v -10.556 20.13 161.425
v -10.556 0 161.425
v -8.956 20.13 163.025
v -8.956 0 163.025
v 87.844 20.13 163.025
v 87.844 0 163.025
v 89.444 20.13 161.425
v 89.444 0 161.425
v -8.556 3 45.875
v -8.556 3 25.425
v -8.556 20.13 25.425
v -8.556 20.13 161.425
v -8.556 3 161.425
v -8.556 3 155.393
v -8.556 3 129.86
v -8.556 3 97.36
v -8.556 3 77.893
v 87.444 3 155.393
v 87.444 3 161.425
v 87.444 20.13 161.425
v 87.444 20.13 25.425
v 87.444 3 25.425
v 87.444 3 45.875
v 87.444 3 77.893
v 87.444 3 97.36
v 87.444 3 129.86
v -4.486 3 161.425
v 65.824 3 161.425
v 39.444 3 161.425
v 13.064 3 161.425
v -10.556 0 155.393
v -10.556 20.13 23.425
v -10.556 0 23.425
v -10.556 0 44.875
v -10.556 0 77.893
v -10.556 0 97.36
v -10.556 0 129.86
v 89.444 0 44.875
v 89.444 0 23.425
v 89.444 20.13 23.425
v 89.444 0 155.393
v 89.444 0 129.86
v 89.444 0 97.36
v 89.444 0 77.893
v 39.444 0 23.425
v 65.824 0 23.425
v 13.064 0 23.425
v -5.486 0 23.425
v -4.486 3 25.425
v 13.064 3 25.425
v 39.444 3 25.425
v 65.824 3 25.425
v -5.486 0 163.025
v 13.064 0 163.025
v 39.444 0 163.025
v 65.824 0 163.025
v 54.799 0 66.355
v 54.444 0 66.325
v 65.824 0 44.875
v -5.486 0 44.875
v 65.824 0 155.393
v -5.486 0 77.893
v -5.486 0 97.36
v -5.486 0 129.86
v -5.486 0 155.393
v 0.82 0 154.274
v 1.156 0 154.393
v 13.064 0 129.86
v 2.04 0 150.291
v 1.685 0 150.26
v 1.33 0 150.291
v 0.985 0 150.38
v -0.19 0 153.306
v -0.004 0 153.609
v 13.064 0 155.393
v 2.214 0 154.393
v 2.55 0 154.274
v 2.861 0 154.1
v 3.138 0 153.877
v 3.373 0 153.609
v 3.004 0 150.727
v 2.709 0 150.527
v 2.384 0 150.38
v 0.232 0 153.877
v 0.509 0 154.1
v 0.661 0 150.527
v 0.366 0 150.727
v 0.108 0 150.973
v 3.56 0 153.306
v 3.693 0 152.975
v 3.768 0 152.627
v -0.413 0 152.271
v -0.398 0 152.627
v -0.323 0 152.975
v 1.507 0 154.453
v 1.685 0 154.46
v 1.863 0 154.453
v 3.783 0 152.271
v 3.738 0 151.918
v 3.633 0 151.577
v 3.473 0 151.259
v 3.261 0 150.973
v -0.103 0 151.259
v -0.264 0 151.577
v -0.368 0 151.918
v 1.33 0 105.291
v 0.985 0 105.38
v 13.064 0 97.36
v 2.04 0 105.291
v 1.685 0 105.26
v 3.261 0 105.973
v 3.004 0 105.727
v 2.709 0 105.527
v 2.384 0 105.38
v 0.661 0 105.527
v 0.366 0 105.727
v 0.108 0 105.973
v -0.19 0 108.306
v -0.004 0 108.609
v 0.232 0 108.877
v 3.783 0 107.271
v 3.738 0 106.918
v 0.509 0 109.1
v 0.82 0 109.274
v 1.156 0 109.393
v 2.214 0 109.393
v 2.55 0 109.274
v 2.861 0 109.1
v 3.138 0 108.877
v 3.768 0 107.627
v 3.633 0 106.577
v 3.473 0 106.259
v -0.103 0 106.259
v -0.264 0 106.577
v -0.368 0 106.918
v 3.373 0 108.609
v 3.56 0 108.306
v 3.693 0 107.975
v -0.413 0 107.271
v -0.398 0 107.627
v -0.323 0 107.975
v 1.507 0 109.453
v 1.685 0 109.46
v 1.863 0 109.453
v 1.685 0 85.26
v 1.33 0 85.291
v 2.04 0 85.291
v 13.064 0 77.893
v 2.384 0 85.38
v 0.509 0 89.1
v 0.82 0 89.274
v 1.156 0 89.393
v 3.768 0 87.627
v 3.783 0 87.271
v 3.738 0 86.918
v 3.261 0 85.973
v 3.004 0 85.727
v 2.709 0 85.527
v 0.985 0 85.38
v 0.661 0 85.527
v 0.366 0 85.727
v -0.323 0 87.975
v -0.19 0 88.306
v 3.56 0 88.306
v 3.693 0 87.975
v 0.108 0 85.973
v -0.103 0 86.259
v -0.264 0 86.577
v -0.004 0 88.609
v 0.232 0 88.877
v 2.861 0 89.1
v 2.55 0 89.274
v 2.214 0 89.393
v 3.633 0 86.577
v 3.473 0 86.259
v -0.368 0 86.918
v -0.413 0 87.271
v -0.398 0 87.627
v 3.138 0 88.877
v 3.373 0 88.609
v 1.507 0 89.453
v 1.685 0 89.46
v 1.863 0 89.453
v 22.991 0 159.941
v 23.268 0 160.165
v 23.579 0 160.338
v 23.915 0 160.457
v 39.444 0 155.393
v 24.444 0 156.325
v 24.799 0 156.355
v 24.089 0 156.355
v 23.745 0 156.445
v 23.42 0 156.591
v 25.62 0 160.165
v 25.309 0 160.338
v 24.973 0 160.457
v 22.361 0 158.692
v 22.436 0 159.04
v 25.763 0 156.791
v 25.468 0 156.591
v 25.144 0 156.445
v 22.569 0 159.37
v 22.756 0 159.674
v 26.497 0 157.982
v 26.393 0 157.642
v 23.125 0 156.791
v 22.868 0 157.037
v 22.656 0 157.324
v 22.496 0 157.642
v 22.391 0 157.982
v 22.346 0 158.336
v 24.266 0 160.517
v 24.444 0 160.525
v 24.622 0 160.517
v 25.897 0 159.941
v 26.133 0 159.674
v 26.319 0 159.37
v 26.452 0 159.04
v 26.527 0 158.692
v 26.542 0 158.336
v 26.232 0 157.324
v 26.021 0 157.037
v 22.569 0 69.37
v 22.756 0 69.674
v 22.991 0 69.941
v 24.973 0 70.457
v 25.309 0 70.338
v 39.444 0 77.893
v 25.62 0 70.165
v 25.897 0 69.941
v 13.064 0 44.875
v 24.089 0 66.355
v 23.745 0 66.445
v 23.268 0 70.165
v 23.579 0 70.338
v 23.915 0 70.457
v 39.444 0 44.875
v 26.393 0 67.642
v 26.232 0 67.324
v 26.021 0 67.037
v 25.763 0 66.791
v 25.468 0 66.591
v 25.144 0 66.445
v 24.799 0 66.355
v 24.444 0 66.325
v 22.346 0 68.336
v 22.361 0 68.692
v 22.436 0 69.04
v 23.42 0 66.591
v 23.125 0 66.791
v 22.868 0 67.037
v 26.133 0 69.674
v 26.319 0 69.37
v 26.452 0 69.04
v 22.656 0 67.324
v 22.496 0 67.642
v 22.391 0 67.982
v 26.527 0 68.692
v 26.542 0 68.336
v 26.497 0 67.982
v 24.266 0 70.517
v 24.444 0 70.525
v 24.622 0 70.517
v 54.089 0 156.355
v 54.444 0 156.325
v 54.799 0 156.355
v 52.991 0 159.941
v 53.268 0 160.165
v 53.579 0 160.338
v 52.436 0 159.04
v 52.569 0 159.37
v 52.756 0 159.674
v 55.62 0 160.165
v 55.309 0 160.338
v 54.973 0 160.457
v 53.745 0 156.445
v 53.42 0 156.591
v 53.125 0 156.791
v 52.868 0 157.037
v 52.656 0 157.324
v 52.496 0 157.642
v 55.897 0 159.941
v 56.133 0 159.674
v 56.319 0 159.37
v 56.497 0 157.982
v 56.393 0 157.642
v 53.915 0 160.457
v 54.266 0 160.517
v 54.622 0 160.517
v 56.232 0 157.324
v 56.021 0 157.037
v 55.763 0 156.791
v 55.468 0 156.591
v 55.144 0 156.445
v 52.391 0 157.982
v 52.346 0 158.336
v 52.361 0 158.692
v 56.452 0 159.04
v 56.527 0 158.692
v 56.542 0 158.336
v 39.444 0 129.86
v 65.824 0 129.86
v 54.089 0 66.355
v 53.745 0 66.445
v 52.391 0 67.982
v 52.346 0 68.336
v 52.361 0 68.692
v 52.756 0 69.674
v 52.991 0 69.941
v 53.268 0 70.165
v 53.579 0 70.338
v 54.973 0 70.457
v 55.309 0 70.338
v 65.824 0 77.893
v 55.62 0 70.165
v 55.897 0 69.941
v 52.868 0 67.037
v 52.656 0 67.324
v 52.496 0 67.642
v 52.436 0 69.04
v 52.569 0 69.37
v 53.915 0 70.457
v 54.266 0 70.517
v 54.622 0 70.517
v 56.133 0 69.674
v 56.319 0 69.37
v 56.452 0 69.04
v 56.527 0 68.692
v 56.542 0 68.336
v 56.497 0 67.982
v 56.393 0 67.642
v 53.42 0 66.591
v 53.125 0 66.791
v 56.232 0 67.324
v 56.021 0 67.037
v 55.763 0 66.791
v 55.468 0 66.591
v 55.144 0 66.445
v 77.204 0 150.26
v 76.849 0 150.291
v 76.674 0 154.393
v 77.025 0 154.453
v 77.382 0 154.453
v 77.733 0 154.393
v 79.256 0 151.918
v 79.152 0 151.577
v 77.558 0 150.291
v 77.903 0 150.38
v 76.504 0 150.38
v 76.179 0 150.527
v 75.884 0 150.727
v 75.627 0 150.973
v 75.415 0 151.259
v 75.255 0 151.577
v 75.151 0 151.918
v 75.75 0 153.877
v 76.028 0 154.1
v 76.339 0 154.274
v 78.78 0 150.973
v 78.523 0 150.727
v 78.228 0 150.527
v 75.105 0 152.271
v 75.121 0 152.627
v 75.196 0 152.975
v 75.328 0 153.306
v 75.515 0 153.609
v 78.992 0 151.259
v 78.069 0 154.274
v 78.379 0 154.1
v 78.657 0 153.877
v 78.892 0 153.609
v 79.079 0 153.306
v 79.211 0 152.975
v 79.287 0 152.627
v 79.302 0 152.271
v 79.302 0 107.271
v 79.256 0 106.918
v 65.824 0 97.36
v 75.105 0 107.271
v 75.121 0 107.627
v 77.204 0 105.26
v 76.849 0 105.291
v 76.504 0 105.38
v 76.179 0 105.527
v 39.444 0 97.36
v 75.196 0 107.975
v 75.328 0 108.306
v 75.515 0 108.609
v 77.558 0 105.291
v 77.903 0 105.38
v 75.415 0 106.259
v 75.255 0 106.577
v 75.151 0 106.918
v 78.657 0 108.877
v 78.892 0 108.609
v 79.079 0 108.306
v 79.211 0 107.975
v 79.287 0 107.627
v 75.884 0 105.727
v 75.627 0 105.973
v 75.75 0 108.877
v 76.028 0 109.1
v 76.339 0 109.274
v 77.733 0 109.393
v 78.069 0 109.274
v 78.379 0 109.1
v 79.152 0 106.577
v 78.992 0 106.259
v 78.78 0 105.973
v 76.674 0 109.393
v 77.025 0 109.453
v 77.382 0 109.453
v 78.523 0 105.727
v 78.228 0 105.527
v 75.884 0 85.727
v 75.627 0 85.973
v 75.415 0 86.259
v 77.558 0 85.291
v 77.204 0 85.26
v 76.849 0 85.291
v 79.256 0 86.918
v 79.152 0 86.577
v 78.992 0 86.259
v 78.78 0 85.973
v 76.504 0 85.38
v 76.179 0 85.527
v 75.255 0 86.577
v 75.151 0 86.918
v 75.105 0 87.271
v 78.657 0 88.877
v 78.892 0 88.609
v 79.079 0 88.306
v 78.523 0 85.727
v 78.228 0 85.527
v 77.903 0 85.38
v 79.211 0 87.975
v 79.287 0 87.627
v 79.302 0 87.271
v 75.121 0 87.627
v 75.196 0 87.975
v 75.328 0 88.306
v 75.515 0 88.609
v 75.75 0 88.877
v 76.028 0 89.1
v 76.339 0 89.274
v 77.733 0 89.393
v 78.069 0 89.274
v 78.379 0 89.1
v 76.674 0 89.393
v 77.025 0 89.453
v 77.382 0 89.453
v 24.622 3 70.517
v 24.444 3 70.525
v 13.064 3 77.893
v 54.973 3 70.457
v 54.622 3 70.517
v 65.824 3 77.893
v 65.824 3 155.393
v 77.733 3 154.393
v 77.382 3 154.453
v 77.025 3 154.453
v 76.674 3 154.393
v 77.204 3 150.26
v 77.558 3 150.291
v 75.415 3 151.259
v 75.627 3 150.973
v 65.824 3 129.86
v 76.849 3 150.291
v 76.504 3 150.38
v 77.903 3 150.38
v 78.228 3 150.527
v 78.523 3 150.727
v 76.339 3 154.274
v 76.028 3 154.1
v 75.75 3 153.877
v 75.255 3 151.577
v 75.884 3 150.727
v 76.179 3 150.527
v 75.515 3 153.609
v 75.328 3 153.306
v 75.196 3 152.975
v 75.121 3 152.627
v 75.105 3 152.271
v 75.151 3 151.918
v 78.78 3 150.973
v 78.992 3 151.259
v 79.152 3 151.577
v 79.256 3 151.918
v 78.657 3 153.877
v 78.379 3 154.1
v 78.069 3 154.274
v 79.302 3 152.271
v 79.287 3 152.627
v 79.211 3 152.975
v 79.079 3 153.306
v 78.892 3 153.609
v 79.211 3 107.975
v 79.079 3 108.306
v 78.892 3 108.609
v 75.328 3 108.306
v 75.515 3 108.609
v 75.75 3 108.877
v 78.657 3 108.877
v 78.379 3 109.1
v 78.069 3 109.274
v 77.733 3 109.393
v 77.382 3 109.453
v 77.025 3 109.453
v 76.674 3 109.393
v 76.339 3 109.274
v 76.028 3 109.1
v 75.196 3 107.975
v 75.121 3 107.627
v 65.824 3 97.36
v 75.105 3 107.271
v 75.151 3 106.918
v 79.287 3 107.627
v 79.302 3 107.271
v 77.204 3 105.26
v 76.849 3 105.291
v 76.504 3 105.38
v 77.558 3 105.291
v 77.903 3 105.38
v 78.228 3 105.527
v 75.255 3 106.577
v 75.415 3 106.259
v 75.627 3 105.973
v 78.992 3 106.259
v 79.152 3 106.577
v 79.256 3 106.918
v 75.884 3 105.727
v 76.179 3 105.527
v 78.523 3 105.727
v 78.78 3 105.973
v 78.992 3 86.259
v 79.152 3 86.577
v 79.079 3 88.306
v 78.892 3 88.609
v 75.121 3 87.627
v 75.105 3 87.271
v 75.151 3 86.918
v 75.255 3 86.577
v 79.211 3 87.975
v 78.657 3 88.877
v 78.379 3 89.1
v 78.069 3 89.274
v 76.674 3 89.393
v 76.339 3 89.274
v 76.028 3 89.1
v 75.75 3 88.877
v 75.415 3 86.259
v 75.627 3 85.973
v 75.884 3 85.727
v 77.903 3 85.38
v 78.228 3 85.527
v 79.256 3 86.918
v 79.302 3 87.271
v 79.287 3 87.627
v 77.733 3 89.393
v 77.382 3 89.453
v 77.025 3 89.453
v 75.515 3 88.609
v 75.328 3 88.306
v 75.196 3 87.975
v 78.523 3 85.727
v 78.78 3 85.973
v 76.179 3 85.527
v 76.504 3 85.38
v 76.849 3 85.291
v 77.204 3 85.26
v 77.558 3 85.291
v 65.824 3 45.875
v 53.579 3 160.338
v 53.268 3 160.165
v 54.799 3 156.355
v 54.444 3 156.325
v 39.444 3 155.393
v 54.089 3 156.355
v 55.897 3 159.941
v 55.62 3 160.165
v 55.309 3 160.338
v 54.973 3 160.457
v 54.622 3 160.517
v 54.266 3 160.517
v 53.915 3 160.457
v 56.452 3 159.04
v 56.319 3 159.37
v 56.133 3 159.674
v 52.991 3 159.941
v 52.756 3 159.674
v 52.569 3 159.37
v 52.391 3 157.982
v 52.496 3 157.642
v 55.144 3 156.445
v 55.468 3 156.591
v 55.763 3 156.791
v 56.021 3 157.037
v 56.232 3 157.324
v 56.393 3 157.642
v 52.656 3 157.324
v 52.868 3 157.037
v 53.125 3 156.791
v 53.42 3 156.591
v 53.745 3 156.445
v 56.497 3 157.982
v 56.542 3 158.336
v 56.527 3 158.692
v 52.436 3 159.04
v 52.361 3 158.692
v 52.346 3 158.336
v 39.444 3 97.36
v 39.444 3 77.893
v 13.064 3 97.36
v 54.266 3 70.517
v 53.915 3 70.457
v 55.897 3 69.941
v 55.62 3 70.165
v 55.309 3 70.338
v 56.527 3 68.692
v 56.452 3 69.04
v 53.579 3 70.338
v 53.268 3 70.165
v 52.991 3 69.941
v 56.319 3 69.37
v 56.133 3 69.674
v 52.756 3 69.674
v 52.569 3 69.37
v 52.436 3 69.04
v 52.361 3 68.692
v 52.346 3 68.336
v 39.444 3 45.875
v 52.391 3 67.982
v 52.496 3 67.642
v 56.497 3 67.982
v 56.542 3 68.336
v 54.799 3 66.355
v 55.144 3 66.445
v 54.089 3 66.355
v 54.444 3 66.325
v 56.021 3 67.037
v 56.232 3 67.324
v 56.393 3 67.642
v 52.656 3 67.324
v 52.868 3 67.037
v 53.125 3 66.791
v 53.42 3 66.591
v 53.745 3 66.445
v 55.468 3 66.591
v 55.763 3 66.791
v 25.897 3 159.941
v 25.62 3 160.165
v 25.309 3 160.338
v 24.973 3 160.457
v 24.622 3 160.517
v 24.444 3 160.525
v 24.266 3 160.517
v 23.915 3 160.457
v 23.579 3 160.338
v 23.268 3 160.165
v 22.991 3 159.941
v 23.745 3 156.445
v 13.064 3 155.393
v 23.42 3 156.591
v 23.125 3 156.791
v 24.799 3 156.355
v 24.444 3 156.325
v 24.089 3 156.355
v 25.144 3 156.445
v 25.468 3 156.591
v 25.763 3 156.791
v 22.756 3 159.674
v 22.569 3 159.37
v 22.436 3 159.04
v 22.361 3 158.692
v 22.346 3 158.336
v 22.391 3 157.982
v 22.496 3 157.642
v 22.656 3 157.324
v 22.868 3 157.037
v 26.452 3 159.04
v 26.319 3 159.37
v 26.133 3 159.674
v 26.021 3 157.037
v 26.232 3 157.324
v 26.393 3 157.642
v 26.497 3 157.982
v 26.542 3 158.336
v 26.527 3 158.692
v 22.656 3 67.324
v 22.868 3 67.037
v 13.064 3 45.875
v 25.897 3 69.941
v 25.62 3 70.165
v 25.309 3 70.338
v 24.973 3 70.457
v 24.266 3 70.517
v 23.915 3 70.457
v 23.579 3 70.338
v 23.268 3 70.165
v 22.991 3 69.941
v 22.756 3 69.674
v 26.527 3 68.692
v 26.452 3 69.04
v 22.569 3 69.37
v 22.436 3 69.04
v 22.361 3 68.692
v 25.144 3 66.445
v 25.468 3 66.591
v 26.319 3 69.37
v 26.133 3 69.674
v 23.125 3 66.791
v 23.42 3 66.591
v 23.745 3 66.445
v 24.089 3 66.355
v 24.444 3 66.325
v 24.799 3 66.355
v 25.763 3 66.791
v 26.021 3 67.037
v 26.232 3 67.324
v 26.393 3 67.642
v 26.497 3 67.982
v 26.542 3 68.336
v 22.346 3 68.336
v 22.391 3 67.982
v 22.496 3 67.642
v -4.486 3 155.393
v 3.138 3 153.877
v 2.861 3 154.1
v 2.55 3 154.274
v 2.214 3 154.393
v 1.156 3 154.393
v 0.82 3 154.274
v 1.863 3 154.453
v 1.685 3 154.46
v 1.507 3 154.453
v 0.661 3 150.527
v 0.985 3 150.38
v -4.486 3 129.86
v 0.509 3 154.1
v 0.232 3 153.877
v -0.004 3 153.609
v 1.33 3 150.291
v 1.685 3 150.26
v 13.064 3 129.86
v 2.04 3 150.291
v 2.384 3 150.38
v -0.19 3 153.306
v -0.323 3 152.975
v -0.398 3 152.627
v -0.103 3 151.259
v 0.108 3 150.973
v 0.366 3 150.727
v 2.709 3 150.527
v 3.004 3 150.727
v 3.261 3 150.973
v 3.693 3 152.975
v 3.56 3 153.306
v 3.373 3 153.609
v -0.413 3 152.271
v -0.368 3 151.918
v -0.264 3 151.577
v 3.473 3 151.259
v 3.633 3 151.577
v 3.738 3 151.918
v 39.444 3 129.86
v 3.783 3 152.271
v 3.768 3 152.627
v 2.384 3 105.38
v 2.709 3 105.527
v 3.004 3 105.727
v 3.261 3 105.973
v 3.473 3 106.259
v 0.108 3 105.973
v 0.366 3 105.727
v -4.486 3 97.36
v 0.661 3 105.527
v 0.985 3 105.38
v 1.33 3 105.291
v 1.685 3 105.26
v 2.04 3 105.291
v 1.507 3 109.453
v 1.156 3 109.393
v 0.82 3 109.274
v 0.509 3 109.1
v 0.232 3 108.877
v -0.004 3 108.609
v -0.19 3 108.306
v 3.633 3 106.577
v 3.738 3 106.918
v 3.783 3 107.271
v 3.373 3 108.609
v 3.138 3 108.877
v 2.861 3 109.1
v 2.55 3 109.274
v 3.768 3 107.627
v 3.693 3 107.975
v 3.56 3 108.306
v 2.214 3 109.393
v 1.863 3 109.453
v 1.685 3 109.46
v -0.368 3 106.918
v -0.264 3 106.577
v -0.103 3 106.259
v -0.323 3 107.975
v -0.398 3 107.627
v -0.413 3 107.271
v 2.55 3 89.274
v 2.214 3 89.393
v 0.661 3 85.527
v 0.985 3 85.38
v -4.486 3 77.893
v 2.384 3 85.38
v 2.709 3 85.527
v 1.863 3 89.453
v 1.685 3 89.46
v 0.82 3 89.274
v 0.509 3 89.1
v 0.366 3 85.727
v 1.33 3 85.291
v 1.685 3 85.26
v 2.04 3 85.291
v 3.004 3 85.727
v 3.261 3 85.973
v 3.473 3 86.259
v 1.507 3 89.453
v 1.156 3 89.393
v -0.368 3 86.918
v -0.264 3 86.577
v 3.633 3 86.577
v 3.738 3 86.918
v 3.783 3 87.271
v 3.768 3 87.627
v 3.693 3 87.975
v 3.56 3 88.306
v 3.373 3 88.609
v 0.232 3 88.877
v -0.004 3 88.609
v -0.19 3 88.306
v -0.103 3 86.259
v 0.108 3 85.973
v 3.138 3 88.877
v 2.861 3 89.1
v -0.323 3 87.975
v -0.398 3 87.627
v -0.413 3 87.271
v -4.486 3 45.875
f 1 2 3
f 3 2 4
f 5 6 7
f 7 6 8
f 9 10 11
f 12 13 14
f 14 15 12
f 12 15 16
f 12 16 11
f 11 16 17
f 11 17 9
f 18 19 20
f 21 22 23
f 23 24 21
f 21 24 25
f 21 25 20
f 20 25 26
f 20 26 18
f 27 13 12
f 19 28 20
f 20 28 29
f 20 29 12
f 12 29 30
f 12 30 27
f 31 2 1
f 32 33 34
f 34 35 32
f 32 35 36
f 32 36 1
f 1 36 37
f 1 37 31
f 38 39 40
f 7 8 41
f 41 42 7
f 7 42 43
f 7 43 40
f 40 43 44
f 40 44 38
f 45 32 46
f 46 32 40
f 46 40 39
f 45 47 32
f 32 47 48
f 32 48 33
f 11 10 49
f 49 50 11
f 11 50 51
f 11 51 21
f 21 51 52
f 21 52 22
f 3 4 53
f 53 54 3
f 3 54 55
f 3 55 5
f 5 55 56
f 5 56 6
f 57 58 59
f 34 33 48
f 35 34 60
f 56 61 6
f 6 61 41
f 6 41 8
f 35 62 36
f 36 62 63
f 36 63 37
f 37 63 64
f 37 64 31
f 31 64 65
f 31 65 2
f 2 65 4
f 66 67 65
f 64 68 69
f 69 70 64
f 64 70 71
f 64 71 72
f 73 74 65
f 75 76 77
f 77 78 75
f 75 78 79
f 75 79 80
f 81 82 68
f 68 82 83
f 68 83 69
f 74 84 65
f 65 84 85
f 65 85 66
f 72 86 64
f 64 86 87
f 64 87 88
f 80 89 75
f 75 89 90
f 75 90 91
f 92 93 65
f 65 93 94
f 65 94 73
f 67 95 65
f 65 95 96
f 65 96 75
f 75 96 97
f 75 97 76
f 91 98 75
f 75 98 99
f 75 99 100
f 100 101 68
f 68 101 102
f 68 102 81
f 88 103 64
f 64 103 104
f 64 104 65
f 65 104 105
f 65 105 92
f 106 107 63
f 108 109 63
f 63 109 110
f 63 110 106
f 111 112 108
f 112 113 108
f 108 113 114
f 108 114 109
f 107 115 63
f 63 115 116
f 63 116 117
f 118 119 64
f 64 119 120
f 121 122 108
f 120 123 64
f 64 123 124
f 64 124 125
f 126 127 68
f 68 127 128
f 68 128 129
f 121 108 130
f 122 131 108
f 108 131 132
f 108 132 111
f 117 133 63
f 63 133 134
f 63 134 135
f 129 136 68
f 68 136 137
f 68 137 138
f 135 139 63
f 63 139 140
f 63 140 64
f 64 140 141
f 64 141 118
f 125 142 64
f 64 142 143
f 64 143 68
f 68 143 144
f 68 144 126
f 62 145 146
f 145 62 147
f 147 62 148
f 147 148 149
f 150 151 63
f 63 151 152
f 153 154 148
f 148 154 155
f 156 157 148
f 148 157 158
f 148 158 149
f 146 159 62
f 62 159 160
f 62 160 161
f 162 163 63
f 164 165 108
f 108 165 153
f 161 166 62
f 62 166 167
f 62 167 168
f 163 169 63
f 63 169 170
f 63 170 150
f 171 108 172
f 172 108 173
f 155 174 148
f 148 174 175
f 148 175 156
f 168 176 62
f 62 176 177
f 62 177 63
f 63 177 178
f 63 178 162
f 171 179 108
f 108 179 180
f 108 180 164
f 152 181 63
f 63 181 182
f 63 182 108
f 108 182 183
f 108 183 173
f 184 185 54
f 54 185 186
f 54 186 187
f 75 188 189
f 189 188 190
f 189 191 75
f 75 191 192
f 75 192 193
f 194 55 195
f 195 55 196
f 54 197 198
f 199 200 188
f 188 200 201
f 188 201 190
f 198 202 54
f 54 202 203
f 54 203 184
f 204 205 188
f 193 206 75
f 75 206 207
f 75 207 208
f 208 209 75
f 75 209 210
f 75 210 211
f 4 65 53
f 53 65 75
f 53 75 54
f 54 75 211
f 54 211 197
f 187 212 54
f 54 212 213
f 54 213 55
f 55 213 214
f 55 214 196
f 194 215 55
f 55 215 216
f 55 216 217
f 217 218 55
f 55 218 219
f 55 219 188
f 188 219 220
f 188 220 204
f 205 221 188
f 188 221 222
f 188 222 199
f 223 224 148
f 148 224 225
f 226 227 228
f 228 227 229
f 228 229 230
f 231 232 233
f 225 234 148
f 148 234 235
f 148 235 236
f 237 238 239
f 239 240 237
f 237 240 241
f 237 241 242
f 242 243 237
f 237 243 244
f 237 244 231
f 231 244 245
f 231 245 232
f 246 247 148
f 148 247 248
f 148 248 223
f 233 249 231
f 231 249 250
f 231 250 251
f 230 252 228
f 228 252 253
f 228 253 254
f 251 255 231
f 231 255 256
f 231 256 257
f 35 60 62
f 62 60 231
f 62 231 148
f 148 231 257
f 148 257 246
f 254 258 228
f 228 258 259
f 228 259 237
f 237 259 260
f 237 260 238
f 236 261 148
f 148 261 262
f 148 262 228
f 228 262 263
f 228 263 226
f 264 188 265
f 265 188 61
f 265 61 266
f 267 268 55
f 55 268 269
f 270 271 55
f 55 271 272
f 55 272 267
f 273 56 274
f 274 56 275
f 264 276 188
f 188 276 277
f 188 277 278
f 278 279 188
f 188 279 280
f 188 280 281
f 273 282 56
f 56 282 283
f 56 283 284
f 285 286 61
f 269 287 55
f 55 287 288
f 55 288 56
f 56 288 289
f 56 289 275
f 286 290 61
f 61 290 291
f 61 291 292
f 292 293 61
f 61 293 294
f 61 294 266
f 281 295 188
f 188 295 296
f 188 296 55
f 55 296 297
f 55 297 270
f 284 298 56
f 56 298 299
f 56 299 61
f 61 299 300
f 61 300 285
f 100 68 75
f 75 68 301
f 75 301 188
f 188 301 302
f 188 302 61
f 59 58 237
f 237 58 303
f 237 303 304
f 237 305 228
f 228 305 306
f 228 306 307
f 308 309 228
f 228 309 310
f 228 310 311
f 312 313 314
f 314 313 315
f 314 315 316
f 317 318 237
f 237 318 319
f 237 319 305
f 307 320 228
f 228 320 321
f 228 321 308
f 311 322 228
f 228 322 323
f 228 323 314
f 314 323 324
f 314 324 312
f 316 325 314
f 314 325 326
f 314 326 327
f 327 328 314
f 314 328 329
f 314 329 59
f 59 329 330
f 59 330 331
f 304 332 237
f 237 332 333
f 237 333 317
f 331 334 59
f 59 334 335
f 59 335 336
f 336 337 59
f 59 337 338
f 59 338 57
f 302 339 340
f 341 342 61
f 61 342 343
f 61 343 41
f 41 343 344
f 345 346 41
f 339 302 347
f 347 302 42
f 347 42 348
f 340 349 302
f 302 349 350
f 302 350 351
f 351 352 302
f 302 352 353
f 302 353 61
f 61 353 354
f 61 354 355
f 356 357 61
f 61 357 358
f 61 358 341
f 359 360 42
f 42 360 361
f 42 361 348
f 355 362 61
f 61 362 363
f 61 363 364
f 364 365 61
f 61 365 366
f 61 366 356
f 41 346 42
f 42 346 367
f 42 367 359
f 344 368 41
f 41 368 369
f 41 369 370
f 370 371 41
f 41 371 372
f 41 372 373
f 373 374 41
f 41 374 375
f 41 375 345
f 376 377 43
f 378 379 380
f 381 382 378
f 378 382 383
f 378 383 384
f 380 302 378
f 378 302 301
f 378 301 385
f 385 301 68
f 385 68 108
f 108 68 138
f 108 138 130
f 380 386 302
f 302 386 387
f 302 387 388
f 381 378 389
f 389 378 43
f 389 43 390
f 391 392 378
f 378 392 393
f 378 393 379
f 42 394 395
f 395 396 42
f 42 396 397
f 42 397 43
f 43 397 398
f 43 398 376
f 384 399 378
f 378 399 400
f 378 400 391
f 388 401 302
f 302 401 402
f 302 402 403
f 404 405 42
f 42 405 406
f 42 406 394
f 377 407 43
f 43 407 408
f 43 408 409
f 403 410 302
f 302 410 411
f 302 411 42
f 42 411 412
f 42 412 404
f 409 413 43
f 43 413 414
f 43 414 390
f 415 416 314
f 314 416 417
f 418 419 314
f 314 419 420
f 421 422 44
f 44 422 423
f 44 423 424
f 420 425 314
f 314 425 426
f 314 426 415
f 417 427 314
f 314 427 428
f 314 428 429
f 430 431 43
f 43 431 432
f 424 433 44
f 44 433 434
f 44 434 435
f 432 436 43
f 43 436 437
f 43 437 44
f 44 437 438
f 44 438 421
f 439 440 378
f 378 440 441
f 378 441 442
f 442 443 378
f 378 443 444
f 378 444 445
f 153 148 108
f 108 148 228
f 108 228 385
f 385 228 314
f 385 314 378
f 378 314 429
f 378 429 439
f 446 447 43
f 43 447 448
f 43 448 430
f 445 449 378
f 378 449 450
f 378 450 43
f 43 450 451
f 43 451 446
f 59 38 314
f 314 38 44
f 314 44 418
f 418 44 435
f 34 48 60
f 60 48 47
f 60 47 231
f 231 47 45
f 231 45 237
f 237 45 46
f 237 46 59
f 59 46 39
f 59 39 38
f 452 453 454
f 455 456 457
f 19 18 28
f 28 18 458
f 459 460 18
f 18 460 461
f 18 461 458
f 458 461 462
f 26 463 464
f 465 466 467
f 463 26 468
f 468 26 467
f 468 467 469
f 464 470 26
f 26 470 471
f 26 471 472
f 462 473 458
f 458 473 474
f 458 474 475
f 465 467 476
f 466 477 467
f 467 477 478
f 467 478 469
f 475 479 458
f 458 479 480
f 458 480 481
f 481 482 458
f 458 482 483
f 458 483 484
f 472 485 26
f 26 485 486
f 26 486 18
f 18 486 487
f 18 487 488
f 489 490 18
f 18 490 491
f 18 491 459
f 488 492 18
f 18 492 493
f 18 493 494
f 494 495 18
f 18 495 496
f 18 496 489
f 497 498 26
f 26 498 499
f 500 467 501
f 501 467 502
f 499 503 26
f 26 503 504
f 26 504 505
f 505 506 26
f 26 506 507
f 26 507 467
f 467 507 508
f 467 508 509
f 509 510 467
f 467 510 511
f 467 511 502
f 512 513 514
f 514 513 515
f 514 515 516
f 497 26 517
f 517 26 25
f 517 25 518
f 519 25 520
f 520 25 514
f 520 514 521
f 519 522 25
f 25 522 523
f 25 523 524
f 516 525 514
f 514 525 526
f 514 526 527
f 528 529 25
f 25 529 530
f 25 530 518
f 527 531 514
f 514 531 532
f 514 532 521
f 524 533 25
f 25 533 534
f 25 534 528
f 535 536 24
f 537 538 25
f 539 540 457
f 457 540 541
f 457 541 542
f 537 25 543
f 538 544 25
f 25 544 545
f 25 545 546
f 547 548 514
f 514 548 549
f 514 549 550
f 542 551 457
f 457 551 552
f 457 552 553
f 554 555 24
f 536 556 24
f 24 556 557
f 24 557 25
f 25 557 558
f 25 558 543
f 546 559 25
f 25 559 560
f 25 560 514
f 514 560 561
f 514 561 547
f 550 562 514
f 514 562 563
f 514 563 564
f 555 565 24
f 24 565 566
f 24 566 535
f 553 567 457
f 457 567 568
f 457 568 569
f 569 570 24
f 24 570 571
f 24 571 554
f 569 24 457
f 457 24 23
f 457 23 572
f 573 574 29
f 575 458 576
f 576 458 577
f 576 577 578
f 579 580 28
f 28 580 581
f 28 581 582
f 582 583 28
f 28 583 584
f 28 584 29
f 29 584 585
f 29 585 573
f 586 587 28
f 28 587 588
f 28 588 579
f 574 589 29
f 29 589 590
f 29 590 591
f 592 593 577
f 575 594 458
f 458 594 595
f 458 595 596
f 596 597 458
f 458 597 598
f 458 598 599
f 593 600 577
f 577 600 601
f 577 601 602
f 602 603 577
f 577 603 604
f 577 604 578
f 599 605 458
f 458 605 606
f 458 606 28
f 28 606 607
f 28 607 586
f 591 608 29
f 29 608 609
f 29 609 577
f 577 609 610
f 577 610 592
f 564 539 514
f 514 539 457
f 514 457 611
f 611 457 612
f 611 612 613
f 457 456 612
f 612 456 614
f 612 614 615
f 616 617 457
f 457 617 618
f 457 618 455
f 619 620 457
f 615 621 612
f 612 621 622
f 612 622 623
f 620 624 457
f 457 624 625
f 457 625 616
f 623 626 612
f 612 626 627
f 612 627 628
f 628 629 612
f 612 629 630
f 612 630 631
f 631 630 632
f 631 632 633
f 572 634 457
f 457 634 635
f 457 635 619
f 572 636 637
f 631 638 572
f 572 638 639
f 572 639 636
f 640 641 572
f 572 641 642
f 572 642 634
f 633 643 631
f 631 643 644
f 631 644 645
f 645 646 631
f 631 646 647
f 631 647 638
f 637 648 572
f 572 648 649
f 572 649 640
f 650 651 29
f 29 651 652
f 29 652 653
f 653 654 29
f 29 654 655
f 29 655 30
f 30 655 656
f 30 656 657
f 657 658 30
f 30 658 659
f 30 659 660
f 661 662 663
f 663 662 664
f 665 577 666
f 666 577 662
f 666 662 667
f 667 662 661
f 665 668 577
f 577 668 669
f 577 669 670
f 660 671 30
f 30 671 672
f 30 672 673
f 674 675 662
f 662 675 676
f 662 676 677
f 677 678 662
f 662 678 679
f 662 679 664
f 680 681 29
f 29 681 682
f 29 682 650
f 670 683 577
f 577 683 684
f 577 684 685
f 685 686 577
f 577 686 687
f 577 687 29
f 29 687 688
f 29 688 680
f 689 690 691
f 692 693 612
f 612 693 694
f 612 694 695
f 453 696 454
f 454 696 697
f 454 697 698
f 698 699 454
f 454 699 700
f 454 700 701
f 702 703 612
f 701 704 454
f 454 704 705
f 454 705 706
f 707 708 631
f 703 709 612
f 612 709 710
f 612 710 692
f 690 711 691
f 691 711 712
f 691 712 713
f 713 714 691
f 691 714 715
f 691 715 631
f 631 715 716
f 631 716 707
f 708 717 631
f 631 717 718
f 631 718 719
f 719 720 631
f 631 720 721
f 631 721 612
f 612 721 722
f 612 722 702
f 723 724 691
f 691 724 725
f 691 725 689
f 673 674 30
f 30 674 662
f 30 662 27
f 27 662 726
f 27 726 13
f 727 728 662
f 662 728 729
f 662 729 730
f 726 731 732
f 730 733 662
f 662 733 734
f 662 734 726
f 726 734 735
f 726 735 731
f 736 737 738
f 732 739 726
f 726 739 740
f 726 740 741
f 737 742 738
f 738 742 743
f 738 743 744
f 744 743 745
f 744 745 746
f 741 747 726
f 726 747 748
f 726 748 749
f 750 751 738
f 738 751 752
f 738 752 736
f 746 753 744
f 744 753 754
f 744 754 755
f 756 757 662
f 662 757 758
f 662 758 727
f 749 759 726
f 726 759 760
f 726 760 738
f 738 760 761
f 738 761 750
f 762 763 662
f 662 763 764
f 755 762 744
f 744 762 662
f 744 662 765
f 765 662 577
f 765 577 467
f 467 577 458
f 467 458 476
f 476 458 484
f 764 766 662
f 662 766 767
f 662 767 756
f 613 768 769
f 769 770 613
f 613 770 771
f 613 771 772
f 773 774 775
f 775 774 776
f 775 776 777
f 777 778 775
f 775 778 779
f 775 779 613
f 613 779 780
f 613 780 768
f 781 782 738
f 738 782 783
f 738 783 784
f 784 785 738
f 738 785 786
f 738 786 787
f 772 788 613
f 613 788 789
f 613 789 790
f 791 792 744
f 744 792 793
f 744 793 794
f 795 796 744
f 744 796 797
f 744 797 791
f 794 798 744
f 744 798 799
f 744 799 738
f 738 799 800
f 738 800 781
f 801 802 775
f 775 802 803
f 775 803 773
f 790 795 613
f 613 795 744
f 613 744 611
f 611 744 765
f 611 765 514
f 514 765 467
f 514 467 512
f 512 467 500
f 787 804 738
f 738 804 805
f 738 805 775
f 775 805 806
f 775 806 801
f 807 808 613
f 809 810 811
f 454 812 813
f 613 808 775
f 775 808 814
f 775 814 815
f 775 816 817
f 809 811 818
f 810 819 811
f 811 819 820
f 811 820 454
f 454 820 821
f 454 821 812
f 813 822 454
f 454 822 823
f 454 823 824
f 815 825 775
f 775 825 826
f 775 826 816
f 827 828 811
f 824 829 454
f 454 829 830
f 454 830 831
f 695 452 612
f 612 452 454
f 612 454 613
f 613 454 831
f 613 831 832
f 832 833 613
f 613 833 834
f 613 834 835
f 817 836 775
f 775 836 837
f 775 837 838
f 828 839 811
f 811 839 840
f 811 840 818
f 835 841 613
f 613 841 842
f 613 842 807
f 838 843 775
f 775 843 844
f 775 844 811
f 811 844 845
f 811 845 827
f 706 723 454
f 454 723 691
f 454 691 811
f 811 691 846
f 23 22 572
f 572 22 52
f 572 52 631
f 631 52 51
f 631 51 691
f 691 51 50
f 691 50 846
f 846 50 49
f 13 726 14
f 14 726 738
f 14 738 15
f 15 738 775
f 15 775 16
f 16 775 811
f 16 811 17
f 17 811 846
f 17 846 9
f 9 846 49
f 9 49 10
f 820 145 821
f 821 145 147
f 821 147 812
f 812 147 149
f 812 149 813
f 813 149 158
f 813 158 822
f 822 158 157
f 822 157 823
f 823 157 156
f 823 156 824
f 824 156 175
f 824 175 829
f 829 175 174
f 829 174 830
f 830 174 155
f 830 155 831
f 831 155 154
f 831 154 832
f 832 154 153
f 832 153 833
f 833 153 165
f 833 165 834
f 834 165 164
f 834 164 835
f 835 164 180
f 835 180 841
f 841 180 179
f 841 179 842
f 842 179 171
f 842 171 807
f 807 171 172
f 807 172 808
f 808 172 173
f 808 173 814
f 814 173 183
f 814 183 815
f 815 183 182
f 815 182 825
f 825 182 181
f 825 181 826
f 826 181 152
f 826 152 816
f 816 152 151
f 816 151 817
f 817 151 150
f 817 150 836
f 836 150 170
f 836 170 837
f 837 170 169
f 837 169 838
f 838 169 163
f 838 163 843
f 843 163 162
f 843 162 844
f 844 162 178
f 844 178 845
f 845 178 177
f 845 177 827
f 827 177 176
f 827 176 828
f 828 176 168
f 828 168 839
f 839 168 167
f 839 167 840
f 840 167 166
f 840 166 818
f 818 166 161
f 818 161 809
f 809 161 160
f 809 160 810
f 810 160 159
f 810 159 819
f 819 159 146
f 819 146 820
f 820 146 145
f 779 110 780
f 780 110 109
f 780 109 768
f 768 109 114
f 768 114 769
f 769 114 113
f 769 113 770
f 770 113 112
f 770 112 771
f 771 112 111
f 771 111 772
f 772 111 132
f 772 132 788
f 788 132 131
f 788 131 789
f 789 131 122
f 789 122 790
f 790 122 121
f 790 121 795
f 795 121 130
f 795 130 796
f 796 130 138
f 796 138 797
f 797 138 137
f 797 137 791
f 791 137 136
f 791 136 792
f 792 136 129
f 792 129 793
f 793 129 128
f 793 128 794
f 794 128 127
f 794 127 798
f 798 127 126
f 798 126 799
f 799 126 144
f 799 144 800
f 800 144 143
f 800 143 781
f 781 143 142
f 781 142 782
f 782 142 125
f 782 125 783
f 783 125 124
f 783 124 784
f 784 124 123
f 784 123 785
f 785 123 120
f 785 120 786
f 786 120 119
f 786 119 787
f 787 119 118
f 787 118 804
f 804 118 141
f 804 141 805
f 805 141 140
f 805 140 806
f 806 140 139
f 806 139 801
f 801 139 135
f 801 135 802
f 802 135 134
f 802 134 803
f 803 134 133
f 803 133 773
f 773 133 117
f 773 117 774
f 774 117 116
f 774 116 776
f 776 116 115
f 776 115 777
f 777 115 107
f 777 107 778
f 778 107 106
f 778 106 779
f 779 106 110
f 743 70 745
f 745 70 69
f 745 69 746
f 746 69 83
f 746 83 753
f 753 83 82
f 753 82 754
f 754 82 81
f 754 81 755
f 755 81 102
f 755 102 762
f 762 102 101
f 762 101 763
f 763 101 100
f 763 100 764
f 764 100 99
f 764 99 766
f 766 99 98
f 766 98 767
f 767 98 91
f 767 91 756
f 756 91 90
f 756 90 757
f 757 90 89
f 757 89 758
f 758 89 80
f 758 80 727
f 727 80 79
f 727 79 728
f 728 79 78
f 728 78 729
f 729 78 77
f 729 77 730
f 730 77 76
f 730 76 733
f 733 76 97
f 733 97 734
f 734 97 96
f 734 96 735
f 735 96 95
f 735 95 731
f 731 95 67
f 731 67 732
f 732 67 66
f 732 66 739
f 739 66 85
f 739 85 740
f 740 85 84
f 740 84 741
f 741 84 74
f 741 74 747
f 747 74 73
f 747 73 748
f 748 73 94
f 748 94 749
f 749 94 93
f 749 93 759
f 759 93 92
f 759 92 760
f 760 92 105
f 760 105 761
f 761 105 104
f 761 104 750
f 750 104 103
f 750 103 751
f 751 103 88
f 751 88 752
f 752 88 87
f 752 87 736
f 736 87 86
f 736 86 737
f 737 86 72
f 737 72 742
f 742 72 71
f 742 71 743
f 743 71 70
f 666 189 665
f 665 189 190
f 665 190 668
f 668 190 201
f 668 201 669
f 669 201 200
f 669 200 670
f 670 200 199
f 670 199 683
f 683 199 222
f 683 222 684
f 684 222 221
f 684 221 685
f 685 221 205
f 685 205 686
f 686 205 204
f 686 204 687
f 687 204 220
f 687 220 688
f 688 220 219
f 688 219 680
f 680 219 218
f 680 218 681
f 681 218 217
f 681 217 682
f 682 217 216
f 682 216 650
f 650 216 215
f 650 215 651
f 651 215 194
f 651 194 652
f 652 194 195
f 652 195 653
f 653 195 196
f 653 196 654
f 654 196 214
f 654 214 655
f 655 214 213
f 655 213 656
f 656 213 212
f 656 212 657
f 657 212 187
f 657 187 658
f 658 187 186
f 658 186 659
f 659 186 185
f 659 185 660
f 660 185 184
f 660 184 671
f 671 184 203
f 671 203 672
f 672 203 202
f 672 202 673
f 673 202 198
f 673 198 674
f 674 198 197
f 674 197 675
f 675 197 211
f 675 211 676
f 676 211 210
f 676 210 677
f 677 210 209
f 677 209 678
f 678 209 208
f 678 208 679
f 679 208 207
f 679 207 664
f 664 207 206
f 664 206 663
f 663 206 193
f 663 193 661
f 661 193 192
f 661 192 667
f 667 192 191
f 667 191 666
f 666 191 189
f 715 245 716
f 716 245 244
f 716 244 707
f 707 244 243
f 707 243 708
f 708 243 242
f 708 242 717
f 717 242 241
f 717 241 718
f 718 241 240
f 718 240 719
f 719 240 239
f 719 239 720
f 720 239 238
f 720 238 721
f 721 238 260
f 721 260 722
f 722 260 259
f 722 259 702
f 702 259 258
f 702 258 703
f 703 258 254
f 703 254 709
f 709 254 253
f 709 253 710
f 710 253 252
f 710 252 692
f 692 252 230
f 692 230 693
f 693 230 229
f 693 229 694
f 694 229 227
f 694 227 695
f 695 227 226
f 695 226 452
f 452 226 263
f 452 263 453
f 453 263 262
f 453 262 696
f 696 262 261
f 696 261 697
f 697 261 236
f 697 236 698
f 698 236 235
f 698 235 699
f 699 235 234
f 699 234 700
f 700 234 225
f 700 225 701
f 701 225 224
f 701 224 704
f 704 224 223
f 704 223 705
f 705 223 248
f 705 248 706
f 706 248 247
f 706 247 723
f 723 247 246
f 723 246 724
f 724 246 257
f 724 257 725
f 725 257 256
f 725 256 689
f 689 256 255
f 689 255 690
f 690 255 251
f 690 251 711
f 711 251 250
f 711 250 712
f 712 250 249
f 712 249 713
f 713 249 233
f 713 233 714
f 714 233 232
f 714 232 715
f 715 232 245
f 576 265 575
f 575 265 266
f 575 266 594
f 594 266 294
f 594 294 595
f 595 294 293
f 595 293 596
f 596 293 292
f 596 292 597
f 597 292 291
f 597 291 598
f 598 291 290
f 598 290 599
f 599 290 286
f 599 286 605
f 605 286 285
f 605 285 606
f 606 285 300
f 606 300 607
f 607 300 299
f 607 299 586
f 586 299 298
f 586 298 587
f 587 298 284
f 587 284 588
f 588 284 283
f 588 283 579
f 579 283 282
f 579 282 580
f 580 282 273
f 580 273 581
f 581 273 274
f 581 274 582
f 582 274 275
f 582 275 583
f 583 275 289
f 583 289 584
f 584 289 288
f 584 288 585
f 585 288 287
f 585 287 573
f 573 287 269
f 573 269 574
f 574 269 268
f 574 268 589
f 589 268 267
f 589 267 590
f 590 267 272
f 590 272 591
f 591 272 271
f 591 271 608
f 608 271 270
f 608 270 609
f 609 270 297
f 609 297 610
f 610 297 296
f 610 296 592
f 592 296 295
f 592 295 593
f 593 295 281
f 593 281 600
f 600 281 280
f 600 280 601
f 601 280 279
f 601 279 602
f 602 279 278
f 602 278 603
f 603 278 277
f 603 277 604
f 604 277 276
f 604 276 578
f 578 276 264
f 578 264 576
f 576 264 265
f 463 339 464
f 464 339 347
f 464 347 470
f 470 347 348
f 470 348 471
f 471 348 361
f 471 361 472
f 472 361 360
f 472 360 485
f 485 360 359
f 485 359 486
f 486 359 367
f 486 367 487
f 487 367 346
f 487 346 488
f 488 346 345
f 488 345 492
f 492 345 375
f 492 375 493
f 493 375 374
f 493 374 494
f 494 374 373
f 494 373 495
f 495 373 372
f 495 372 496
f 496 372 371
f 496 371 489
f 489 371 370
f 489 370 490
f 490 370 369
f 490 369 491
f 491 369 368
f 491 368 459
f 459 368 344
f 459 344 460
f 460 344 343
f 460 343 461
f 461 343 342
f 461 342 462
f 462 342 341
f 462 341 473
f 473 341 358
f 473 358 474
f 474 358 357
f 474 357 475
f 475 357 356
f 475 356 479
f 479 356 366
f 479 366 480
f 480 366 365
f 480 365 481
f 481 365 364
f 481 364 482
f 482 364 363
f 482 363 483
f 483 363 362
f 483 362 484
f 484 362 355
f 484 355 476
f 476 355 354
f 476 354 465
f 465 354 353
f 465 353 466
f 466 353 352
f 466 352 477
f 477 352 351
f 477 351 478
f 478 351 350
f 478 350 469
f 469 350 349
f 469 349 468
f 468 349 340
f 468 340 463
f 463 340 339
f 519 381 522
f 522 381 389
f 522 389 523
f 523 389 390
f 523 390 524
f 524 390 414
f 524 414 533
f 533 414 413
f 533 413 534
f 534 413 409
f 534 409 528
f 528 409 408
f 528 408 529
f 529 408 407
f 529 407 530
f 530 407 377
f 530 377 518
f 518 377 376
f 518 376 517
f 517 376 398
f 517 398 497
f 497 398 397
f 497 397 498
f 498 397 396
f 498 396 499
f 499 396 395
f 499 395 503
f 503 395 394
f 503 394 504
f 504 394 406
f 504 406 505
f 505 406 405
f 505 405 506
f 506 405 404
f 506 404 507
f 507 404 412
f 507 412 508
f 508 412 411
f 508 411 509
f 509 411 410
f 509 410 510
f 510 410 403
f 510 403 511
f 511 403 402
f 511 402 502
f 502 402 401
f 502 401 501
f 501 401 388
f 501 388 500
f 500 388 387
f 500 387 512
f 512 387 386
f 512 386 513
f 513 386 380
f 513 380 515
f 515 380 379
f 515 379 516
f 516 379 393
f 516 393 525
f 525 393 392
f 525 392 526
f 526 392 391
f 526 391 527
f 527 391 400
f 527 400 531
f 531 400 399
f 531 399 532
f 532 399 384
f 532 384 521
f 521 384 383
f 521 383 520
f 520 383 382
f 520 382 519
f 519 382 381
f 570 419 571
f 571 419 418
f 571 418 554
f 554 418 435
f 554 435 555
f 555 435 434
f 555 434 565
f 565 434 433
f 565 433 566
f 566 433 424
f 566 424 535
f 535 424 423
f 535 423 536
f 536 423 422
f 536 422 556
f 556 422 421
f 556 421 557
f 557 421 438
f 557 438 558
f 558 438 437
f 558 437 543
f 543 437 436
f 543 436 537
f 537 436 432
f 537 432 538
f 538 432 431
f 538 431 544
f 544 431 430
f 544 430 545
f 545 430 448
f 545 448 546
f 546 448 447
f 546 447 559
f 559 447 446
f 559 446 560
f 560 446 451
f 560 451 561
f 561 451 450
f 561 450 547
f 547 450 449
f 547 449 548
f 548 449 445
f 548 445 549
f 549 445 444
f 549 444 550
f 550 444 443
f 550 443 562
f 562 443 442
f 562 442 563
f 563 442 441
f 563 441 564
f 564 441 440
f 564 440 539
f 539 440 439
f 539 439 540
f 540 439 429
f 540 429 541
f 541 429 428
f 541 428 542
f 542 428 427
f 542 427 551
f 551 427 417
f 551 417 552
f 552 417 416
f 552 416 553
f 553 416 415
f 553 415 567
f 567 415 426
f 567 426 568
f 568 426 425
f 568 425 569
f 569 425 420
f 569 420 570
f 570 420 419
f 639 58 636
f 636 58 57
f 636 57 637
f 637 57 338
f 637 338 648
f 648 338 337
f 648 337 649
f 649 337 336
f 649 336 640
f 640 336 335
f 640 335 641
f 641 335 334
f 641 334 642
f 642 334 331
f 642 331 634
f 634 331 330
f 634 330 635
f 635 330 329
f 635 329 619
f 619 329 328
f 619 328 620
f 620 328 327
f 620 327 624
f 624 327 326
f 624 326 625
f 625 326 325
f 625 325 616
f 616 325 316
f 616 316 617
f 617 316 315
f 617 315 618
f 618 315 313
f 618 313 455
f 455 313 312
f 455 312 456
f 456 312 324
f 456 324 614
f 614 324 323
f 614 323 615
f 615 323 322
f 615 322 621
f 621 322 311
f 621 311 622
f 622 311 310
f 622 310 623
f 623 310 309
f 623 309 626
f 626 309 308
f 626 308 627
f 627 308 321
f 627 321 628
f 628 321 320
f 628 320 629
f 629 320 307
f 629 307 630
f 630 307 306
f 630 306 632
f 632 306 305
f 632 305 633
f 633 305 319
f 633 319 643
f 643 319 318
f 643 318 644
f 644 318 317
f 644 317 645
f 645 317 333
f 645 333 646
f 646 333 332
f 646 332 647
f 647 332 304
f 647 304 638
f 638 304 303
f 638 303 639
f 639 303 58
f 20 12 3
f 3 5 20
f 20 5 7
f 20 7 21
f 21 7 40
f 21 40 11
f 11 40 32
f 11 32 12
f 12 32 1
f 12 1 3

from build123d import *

# Parameters (mm, degrees)
SKETCH6_W            = 100
SKETCH6_H            = 100
SKETCH6_R            = 2.1
BOSS_EXTRUDE2_DEPTH  = 3
SKETCH7_W            = 96
SKETCH7_H            = 2
BOSS_EXTRUDE3_DEPTH  = 3
SKETCH8_W            = 96
SKETCH8_H            = 2
BOSS_EXTRUDE4_DEPTH  = 3
CHAMFER1_SIZE        = 2
BOSS_EXTRUDE5_DEPTH  = 3
SKETCH10_W           = 98
SKETCH10_H           = 25
BOSS_EXTRUDE6_DEPTH  = 2
SKETCH11_W           = 2
SKETCH11_H           = 25
BOSS_EXTRUDE7_DEPTH  = 40
SKETCH12_W           = 138
SKETCH12_H           = 25
BOSS_EXTRUDE8_DEPTH  = 2
CUT_EXTRUDE1_DEPTH   = 3
SKETCH15_W           = 96
SKETCH15_H           = 6.337470387
CUT_EXTRUDE2_DEPTH   = 3
SKETCH16_W           = 96
SKETCH16_H           = 3
BOSS_EXTRUDE9_DEPTH  = 40
SKETCH17_W           = 96
SKETCH17_H           = 2
BOSS_EXTRUDE10_DEPTH = 22
BOSS_EXTRUDE11_DEPTH = 19
SKETCH19_W           = 108.527729828
SKETCH19_H           = 34.099347136
CUT_EXTRUDE3_DEPTH   = 0.4
SKETCH20_W           = 119.4554648
SKETCH20_H           = 149.467416286
CUT_EXTRUDE4_DEPTH   = 4.87


with BuildPart() as part:
    # Sketch6 → Boss-Extrude2 (new body)
    with BuildSketch(Plane(origin=(0, 0, 0), x_dir=(1, 0, 0), z_dir=(0, 1, 0))):
        with Locations((39.444153985, -113.424821635)):
            Rectangle(SKETCH6_W, SKETCH6_H)
        with Locations((1.68480047, -87.360414745)):
            Circle(SKETCH6_R, mode=Mode.SUBTRACT)
        with Locations((1.68480047, -107.360414745)):
            Circle(SKETCH6_R, mode=Mode.SUBTRACT)
        with Locations((1.68480047, -152.360414745)):
            Circle(SKETCH6_R, mode=Mode.SUBTRACT)
        with Locations((24.444153985, -158.424821635)):
            Circle(SKETCH6_R, mode=Mode.SUBTRACT)
        with Locations((24.444153985, -68.424821635)):
            Circle(SKETCH6_R, mode=Mode.SUBTRACT)
        with Locations((54.444153985, -158.424821635)):
            Circle(SKETCH6_R, mode=Mode.SUBTRACT)
        with Locations((77.2035075, -152.360414745)):
            Circle(SKETCH6_R, mode=Mode.SUBTRACT)
        with Locations((77.2035075, -107.360414745)):
            Circle(SKETCH6_R, mode=Mode.SUBTRACT)
        with Locations((77.2035075, -87.360414745)):
            Circle(SKETCH6_R, mode=Mode.SUBTRACT)
        with Locations((54.444153985, -68.424821635)):
            Circle(SKETCH6_R, mode=Mode.SUBTRACT)
    extrude(amount=BOSS_EXTRUDE2_DEPTH)

    # Sketch7 → Boss-Extrude3 (add)
    with BuildSketch(Plane(origin=(0, 3, 0), x_dir=(1, 0, 0), z_dir=(0, 1, 0))):
        Polygon((-10.555846015, -63.424821635), (-10.555846015, -163.424821635), (-8.555846015, -163.424821635), (-8.555846015, -65.424821635), (-8.555846015, -63.424821635), align=None)
        with Locations((39.444153985, -64.424821635)):
            Rectangle(SKETCH7_W, SKETCH7_H)
        Polygon((87.444153985, -63.424821635), (87.444153985, -65.424821635), (87.444153985, -163.424821635), (89.444153985, -163.424821635), (89.444153985, -63.424821635), align=None)
    extrude(amount=BOSS_EXTRUDE3_DEPTH)

    # Sketch8 → Boss-Extrude4 (add)
    with BuildSketch(Plane(origin=(0, 3, 0), x_dir=(1, 0, 0), z_dir=(0, 1, 0))):
        with Locations((39.444153985, -162.424821635)):
            Rectangle(SKETCH8_W, SKETCH8_H)
    extrude(amount=BOSS_EXTRUDE4_DEPTH)

    # Chamfer1
    chamfer1_edges = [part.edges().sort_by_distance(p)[0] for p in [
        (-10.555846015, 3, 63.424821635),
        (89.444153985, 3, 63.424821635),
        (89.444153985, 3, 163.424821635),
        (-10.555846015, 3, 163.424821635),
    ]]
    chamfer(chamfer1_edges, length=CHAMFER1_SIZE)

    # Sketch9 → Boss-Extrude5 (add)
    with BuildSketch(Plane(origin=(0, 3, 0), x_dir=(1, 0, 0), z_dir=(0, 1, 0))):
        Polygon((-6.555846015, -65.424821635), (-8.555846015, -67.424821635), (-8.555846015, -65.424821635), align=None)
        Polygon((87.444153985, -67.424821635), (87.444153985, -65.424821635), (85.444153985, -65.424821635), align=None)
        Polygon((85.444153985, -161.424821635), (87.444153985, -159.424821635), (87.444153985, -161.424821635), align=None)
        Polygon((-8.555846015, -159.424821635), (-8.555846015, -161.424821635), (-6.555846015, -161.424821635), align=None)
    extrude(amount=BOSS_EXTRUDE5_DEPTH)

    # Sketch10 → Boss-Extrude6 (add)
    with BuildSketch(Plane.ZY.offset(10.555846015)):
        with Locations((112.424821635, 12.5)):
            Rectangle(SKETCH10_W, SKETCH10_H)
    extrude(amount=-BOSS_EXTRUDE6_DEPTH)

    # Sketch11 → Boss-Extrude7 (add)
    with BuildSketch(Plane(origin=(0, 0, 63.424821635), x_dir=(-1, 0, 0), z_dir=(0, 0, -1))):
        with Locations((9.555846015, 12.5)):
            Rectangle(SKETCH11_W, SKETCH11_H)
    extrude(amount=BOSS_EXTRUDE7_DEPTH)

    # Sketch12 → Boss-Extrude8 (add)
    with BuildSketch(Plane(origin=(89.444153985, 0, 0), x_dir=(0, 0, -1), z_dir=(1, 0, 0))):
        with Locations((-92.424821635, 12.5)):
            Rectangle(SKETCH12_W, SKETCH12_H)
    extrude(amount=-BOSS_EXTRUDE8_DEPTH)

    # Sketch13 → Cut-Extrude1 (cut)
    with BuildSketch(Plane(origin=(0, 6, 0), x_dir=(1, 0, 0), z_dir=(0, 1, 0))):
        Polygon((-8.555846015, -161.424821635), (-6.555846015, -161.424821635), (-8.555846015, -159.424821635), align=None)
        Polygon((85.444153985, -161.424821635), (87.444153985, -161.424821635), (87.444153985, -159.424821635), align=None)
    extrude(amount=-CUT_EXTRUDE1_DEPTH, mode=Mode.SUBTRACT)

    # Sketch15 → Cut-Extrude2 (cut)
    with BuildSketch(Plane(origin=(0, 6, 0), x_dir=(1, 0, 0), z_dir=(0, 1, 0))):
        with Locations((39.444153985, -66.593556828)):
            Rectangle(SKETCH15_W, SKETCH15_H)
    extrude(amount=-CUT_EXTRUDE2_DEPTH, mode=Mode.SUBTRACT)

    # Sketch16 → Boss-Extrude9 (add)
    with BuildSketch(Plane(origin=(0, 0, 63.424821635), x_dir=(-1, 0, 0), z_dir=(0, 0, -1))):
        with Locations((-39.444153985, 1.5)):
            Rectangle(SKETCH16_W, SKETCH16_H)
    extrude(amount=BOSS_EXTRUDE9_DEPTH)

    # Sketch17 → Boss-Extrude10 (add)
    with BuildSketch(Plane(origin=(0, 3, 0), x_dir=(1, 0, 0), z_dir=(0, 1, 0))):
        with Locations((39.444153985, -24.424821635)):
            Rectangle(SKETCH17_W, SKETCH17_H)
    extrude(amount=BOSS_EXTRUDE10_DEPTH)

    # Sketch18 → Boss-Extrude11 (add)
    with BuildSketch(Plane(origin=(0, 6, 0), x_dir=(1, 0, 0), z_dir=(0, 1, 0))):
        Polygon((-10.555846015, -161.424821635), (-8.555846015, -163.424821635), (87.444153985, -163.424821635), (89.444153985, -161.424821635), align=None)
    extrude(amount=BOSS_EXTRUDE11_DEPTH)

    # Sketch19 → Cut-Extrude3 (cut)
    with BuildSketch(Plane.XY.offset(163.424821635)):
        with Locations((38.077994244, 12.109002602)):
            Rectangle(SKETCH19_W, SKETCH19_H)
    extrude(amount=-CUT_EXTRUDE3_DEPTH, mode=Mode.SUBTRACT)

    # Sketch20 → Cut-Extrude4 (cut)
    with BuildSketch(Plane(origin=(0, 25, 0), x_dir=(1, 0, 0), z_dir=(0, 1, 0))):
        with Locations((42.445417515, -94.60695098)):
            Rectangle(SKETCH20_W, SKETCH20_H)
    extrude(amount=-CUT_EXTRUDE4_DEPTH, mode=Mode.SUBTRACT)


solid = part.part
